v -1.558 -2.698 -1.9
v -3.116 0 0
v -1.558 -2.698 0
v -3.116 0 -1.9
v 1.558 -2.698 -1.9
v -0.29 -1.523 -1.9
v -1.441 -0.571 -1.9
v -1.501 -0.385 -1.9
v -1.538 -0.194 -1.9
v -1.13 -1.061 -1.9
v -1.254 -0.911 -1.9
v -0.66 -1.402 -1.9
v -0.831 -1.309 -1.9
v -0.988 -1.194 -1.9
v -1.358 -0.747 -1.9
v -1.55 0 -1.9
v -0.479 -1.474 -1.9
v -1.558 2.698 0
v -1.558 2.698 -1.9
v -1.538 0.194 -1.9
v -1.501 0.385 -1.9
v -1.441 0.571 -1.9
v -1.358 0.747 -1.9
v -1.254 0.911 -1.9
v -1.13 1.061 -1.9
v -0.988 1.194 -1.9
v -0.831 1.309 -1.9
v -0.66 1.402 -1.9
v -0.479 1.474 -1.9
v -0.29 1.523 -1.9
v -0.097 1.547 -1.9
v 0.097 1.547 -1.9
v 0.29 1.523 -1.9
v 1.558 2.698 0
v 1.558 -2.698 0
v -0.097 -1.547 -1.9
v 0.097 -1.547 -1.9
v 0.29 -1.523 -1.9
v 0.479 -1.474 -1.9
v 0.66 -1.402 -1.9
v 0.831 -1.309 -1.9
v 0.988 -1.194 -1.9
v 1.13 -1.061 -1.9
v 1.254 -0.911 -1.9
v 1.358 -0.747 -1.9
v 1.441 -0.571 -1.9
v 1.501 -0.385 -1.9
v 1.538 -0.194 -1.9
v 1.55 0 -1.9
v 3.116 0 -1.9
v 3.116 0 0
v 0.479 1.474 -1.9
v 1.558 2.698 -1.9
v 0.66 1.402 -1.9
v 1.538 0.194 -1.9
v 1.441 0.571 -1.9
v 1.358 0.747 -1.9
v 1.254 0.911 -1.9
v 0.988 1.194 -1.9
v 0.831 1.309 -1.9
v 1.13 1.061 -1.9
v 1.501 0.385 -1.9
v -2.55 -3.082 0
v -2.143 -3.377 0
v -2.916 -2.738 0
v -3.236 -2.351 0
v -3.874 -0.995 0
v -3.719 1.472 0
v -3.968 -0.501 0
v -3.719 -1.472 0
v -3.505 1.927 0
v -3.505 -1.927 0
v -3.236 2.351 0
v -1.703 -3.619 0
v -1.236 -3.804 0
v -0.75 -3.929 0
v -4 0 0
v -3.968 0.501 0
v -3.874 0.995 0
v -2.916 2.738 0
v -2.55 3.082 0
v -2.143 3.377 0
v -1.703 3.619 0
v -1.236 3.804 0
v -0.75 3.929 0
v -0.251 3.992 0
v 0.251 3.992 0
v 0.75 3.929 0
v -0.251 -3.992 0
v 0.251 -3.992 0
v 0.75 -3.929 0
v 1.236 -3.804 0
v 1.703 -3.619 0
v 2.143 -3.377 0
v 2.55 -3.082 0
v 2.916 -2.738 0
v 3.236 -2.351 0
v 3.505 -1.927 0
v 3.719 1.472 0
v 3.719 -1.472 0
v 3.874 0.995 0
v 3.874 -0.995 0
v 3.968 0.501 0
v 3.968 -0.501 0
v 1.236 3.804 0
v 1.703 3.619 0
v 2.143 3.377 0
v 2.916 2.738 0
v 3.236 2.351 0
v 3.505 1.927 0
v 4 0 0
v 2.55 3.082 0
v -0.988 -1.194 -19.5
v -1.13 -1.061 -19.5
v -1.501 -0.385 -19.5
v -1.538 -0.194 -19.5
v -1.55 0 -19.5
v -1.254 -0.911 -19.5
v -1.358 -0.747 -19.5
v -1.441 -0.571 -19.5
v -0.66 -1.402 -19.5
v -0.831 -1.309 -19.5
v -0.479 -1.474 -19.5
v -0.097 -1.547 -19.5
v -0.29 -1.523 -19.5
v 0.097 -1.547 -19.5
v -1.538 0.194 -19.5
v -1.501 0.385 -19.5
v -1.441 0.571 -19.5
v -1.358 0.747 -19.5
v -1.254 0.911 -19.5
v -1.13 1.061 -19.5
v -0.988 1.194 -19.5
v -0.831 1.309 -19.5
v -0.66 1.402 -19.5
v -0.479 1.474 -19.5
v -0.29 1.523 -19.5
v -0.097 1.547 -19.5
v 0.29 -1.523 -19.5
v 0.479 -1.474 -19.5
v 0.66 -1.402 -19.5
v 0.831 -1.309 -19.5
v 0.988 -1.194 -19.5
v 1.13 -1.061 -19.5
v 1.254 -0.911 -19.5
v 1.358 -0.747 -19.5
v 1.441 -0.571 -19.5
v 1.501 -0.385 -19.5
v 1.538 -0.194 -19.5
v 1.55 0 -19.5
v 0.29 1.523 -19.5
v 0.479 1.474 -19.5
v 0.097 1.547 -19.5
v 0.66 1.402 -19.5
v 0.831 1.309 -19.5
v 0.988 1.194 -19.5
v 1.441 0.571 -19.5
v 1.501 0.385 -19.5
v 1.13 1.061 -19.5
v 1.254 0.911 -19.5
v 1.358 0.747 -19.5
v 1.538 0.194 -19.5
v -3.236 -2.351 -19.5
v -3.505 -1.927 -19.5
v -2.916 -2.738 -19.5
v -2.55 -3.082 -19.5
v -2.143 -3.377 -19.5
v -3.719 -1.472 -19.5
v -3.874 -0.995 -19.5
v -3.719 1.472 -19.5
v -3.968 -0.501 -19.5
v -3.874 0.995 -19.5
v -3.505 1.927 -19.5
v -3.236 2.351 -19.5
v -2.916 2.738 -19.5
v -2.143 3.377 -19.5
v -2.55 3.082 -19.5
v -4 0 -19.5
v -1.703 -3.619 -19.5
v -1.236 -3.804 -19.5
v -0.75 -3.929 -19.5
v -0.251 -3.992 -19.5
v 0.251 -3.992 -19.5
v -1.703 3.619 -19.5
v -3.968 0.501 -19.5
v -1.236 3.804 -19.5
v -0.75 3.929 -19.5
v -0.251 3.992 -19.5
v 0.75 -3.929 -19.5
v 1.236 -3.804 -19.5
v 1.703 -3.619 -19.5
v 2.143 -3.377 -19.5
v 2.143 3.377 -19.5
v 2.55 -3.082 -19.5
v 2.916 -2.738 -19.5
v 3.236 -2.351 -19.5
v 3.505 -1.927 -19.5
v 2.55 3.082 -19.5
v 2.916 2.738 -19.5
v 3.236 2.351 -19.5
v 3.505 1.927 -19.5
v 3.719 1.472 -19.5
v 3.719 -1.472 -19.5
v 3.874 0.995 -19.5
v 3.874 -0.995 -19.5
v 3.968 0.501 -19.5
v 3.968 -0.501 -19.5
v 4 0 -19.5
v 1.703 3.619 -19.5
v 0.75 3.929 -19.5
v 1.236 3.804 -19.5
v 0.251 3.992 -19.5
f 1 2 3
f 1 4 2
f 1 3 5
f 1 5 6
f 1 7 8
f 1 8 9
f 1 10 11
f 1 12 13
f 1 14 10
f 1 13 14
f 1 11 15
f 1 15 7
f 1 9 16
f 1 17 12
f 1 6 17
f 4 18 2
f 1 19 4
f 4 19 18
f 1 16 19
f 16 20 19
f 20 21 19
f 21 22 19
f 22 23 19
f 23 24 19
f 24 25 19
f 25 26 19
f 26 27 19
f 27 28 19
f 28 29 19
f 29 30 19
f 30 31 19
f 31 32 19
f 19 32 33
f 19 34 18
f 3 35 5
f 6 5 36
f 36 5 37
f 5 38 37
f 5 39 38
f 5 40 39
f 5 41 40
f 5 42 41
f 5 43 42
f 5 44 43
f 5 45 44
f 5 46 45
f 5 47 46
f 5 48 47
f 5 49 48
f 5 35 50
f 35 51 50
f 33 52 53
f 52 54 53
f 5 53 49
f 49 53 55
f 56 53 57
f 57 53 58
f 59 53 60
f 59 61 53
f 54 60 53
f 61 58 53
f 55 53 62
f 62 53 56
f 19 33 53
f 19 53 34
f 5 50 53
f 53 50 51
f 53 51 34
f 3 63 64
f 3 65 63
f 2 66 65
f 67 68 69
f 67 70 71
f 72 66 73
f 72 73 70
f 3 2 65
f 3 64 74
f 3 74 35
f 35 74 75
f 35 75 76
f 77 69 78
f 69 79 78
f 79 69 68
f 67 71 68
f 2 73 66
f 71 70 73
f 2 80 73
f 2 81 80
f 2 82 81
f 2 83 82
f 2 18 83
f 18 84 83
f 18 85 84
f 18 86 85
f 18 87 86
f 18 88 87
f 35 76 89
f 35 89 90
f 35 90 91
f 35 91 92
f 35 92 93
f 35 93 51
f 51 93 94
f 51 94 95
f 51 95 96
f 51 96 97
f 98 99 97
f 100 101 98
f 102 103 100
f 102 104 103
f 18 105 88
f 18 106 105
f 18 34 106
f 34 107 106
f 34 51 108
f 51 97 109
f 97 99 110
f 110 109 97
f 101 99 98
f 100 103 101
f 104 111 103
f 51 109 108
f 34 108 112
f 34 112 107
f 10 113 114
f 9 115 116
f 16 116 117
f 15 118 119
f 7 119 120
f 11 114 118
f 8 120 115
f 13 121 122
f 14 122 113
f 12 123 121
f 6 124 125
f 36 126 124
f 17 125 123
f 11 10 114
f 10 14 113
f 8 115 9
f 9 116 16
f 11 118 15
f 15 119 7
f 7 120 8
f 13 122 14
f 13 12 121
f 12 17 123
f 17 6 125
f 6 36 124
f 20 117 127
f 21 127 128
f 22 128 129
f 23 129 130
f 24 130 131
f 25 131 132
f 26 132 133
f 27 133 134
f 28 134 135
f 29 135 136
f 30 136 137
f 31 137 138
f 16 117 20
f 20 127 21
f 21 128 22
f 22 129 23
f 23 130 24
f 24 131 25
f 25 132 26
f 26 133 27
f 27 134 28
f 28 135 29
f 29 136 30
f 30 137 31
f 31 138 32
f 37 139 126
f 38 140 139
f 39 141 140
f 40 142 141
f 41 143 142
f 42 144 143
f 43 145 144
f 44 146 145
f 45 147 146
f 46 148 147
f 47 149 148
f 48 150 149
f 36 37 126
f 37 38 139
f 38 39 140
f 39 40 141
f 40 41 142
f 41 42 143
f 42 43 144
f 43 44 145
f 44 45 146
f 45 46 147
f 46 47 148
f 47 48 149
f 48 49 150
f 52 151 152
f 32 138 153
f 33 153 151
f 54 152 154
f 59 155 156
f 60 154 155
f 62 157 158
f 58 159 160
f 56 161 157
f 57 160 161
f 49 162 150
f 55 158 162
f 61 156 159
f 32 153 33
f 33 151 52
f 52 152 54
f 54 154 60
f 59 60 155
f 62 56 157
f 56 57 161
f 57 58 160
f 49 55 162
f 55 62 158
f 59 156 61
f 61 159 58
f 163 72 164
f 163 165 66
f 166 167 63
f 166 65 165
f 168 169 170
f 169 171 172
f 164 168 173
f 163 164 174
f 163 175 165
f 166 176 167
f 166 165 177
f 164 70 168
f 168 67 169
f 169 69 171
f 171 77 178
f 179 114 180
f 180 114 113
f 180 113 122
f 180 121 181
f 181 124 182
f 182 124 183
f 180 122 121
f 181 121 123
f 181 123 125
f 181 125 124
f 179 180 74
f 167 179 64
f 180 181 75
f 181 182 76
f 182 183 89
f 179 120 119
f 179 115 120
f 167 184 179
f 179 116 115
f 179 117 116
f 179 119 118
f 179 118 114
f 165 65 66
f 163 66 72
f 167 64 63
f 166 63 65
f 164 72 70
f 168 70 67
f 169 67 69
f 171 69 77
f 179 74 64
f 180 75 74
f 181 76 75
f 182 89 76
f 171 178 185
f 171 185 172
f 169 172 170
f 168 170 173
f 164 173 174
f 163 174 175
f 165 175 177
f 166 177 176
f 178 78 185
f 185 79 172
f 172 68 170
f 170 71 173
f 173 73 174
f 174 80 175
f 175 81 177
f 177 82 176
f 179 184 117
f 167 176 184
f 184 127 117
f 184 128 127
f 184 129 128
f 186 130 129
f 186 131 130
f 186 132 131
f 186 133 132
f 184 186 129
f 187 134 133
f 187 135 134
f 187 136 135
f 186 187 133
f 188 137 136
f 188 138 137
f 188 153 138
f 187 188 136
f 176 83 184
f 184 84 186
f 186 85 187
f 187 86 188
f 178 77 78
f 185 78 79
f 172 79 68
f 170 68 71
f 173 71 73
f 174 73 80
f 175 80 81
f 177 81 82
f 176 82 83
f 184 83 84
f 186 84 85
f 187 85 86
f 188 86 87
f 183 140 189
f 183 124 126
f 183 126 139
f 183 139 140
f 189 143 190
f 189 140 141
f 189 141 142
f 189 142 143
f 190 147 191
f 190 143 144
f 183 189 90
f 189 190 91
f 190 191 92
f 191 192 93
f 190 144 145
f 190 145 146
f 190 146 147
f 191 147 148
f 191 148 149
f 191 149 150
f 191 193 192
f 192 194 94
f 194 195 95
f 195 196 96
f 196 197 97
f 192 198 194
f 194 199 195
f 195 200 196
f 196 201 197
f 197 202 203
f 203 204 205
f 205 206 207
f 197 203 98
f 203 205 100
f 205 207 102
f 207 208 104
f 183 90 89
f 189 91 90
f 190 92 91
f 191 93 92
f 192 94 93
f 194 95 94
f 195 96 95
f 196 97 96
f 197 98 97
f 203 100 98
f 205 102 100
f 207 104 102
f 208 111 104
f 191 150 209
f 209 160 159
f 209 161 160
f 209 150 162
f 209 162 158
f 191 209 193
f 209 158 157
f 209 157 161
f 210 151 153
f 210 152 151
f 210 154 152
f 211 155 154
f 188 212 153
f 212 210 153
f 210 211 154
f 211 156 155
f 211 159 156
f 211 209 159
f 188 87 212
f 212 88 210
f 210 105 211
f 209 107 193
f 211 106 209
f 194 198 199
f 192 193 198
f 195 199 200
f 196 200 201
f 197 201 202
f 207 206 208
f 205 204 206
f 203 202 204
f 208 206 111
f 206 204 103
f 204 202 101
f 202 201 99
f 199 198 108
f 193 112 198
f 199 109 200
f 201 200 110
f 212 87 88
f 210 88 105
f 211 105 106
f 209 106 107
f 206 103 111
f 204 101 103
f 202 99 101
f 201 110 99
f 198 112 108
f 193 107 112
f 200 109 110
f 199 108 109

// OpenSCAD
$fn = 50;

difference() {
	union() {
		translate(v = [0, 0, -19.5]) {
			cylinder(h = 22.5, r = 4.0);
		}
	}
	union() {
		translate(v = [0, 0, 0]) {
			rotate(a = [0, 0, 0]) {
				difference() {
					union() {
						translate(v = [0, 0, -1.9]) {
							linear_extrude(height = 1.9) {
								polygon(points = [[3.1158, 0.0], [1.5579000000000005, 2.698361953111554], [-1.5578999999999994, 2.6983619531115544], [-3.1158, 3.815754496783323e-16], [-1.5579000000000014, -2.6983619531115535], [1.557899999999998, -2.6983619531115552]]);
							}
						}
					}
					union();
				}
			}
		}
		#cylinder(h = 3, r = 5.0);
		#translate(v = [0, 0, -100.0]) {
			cylinder(h = 200, r = 1.55);
		}
	}
}
